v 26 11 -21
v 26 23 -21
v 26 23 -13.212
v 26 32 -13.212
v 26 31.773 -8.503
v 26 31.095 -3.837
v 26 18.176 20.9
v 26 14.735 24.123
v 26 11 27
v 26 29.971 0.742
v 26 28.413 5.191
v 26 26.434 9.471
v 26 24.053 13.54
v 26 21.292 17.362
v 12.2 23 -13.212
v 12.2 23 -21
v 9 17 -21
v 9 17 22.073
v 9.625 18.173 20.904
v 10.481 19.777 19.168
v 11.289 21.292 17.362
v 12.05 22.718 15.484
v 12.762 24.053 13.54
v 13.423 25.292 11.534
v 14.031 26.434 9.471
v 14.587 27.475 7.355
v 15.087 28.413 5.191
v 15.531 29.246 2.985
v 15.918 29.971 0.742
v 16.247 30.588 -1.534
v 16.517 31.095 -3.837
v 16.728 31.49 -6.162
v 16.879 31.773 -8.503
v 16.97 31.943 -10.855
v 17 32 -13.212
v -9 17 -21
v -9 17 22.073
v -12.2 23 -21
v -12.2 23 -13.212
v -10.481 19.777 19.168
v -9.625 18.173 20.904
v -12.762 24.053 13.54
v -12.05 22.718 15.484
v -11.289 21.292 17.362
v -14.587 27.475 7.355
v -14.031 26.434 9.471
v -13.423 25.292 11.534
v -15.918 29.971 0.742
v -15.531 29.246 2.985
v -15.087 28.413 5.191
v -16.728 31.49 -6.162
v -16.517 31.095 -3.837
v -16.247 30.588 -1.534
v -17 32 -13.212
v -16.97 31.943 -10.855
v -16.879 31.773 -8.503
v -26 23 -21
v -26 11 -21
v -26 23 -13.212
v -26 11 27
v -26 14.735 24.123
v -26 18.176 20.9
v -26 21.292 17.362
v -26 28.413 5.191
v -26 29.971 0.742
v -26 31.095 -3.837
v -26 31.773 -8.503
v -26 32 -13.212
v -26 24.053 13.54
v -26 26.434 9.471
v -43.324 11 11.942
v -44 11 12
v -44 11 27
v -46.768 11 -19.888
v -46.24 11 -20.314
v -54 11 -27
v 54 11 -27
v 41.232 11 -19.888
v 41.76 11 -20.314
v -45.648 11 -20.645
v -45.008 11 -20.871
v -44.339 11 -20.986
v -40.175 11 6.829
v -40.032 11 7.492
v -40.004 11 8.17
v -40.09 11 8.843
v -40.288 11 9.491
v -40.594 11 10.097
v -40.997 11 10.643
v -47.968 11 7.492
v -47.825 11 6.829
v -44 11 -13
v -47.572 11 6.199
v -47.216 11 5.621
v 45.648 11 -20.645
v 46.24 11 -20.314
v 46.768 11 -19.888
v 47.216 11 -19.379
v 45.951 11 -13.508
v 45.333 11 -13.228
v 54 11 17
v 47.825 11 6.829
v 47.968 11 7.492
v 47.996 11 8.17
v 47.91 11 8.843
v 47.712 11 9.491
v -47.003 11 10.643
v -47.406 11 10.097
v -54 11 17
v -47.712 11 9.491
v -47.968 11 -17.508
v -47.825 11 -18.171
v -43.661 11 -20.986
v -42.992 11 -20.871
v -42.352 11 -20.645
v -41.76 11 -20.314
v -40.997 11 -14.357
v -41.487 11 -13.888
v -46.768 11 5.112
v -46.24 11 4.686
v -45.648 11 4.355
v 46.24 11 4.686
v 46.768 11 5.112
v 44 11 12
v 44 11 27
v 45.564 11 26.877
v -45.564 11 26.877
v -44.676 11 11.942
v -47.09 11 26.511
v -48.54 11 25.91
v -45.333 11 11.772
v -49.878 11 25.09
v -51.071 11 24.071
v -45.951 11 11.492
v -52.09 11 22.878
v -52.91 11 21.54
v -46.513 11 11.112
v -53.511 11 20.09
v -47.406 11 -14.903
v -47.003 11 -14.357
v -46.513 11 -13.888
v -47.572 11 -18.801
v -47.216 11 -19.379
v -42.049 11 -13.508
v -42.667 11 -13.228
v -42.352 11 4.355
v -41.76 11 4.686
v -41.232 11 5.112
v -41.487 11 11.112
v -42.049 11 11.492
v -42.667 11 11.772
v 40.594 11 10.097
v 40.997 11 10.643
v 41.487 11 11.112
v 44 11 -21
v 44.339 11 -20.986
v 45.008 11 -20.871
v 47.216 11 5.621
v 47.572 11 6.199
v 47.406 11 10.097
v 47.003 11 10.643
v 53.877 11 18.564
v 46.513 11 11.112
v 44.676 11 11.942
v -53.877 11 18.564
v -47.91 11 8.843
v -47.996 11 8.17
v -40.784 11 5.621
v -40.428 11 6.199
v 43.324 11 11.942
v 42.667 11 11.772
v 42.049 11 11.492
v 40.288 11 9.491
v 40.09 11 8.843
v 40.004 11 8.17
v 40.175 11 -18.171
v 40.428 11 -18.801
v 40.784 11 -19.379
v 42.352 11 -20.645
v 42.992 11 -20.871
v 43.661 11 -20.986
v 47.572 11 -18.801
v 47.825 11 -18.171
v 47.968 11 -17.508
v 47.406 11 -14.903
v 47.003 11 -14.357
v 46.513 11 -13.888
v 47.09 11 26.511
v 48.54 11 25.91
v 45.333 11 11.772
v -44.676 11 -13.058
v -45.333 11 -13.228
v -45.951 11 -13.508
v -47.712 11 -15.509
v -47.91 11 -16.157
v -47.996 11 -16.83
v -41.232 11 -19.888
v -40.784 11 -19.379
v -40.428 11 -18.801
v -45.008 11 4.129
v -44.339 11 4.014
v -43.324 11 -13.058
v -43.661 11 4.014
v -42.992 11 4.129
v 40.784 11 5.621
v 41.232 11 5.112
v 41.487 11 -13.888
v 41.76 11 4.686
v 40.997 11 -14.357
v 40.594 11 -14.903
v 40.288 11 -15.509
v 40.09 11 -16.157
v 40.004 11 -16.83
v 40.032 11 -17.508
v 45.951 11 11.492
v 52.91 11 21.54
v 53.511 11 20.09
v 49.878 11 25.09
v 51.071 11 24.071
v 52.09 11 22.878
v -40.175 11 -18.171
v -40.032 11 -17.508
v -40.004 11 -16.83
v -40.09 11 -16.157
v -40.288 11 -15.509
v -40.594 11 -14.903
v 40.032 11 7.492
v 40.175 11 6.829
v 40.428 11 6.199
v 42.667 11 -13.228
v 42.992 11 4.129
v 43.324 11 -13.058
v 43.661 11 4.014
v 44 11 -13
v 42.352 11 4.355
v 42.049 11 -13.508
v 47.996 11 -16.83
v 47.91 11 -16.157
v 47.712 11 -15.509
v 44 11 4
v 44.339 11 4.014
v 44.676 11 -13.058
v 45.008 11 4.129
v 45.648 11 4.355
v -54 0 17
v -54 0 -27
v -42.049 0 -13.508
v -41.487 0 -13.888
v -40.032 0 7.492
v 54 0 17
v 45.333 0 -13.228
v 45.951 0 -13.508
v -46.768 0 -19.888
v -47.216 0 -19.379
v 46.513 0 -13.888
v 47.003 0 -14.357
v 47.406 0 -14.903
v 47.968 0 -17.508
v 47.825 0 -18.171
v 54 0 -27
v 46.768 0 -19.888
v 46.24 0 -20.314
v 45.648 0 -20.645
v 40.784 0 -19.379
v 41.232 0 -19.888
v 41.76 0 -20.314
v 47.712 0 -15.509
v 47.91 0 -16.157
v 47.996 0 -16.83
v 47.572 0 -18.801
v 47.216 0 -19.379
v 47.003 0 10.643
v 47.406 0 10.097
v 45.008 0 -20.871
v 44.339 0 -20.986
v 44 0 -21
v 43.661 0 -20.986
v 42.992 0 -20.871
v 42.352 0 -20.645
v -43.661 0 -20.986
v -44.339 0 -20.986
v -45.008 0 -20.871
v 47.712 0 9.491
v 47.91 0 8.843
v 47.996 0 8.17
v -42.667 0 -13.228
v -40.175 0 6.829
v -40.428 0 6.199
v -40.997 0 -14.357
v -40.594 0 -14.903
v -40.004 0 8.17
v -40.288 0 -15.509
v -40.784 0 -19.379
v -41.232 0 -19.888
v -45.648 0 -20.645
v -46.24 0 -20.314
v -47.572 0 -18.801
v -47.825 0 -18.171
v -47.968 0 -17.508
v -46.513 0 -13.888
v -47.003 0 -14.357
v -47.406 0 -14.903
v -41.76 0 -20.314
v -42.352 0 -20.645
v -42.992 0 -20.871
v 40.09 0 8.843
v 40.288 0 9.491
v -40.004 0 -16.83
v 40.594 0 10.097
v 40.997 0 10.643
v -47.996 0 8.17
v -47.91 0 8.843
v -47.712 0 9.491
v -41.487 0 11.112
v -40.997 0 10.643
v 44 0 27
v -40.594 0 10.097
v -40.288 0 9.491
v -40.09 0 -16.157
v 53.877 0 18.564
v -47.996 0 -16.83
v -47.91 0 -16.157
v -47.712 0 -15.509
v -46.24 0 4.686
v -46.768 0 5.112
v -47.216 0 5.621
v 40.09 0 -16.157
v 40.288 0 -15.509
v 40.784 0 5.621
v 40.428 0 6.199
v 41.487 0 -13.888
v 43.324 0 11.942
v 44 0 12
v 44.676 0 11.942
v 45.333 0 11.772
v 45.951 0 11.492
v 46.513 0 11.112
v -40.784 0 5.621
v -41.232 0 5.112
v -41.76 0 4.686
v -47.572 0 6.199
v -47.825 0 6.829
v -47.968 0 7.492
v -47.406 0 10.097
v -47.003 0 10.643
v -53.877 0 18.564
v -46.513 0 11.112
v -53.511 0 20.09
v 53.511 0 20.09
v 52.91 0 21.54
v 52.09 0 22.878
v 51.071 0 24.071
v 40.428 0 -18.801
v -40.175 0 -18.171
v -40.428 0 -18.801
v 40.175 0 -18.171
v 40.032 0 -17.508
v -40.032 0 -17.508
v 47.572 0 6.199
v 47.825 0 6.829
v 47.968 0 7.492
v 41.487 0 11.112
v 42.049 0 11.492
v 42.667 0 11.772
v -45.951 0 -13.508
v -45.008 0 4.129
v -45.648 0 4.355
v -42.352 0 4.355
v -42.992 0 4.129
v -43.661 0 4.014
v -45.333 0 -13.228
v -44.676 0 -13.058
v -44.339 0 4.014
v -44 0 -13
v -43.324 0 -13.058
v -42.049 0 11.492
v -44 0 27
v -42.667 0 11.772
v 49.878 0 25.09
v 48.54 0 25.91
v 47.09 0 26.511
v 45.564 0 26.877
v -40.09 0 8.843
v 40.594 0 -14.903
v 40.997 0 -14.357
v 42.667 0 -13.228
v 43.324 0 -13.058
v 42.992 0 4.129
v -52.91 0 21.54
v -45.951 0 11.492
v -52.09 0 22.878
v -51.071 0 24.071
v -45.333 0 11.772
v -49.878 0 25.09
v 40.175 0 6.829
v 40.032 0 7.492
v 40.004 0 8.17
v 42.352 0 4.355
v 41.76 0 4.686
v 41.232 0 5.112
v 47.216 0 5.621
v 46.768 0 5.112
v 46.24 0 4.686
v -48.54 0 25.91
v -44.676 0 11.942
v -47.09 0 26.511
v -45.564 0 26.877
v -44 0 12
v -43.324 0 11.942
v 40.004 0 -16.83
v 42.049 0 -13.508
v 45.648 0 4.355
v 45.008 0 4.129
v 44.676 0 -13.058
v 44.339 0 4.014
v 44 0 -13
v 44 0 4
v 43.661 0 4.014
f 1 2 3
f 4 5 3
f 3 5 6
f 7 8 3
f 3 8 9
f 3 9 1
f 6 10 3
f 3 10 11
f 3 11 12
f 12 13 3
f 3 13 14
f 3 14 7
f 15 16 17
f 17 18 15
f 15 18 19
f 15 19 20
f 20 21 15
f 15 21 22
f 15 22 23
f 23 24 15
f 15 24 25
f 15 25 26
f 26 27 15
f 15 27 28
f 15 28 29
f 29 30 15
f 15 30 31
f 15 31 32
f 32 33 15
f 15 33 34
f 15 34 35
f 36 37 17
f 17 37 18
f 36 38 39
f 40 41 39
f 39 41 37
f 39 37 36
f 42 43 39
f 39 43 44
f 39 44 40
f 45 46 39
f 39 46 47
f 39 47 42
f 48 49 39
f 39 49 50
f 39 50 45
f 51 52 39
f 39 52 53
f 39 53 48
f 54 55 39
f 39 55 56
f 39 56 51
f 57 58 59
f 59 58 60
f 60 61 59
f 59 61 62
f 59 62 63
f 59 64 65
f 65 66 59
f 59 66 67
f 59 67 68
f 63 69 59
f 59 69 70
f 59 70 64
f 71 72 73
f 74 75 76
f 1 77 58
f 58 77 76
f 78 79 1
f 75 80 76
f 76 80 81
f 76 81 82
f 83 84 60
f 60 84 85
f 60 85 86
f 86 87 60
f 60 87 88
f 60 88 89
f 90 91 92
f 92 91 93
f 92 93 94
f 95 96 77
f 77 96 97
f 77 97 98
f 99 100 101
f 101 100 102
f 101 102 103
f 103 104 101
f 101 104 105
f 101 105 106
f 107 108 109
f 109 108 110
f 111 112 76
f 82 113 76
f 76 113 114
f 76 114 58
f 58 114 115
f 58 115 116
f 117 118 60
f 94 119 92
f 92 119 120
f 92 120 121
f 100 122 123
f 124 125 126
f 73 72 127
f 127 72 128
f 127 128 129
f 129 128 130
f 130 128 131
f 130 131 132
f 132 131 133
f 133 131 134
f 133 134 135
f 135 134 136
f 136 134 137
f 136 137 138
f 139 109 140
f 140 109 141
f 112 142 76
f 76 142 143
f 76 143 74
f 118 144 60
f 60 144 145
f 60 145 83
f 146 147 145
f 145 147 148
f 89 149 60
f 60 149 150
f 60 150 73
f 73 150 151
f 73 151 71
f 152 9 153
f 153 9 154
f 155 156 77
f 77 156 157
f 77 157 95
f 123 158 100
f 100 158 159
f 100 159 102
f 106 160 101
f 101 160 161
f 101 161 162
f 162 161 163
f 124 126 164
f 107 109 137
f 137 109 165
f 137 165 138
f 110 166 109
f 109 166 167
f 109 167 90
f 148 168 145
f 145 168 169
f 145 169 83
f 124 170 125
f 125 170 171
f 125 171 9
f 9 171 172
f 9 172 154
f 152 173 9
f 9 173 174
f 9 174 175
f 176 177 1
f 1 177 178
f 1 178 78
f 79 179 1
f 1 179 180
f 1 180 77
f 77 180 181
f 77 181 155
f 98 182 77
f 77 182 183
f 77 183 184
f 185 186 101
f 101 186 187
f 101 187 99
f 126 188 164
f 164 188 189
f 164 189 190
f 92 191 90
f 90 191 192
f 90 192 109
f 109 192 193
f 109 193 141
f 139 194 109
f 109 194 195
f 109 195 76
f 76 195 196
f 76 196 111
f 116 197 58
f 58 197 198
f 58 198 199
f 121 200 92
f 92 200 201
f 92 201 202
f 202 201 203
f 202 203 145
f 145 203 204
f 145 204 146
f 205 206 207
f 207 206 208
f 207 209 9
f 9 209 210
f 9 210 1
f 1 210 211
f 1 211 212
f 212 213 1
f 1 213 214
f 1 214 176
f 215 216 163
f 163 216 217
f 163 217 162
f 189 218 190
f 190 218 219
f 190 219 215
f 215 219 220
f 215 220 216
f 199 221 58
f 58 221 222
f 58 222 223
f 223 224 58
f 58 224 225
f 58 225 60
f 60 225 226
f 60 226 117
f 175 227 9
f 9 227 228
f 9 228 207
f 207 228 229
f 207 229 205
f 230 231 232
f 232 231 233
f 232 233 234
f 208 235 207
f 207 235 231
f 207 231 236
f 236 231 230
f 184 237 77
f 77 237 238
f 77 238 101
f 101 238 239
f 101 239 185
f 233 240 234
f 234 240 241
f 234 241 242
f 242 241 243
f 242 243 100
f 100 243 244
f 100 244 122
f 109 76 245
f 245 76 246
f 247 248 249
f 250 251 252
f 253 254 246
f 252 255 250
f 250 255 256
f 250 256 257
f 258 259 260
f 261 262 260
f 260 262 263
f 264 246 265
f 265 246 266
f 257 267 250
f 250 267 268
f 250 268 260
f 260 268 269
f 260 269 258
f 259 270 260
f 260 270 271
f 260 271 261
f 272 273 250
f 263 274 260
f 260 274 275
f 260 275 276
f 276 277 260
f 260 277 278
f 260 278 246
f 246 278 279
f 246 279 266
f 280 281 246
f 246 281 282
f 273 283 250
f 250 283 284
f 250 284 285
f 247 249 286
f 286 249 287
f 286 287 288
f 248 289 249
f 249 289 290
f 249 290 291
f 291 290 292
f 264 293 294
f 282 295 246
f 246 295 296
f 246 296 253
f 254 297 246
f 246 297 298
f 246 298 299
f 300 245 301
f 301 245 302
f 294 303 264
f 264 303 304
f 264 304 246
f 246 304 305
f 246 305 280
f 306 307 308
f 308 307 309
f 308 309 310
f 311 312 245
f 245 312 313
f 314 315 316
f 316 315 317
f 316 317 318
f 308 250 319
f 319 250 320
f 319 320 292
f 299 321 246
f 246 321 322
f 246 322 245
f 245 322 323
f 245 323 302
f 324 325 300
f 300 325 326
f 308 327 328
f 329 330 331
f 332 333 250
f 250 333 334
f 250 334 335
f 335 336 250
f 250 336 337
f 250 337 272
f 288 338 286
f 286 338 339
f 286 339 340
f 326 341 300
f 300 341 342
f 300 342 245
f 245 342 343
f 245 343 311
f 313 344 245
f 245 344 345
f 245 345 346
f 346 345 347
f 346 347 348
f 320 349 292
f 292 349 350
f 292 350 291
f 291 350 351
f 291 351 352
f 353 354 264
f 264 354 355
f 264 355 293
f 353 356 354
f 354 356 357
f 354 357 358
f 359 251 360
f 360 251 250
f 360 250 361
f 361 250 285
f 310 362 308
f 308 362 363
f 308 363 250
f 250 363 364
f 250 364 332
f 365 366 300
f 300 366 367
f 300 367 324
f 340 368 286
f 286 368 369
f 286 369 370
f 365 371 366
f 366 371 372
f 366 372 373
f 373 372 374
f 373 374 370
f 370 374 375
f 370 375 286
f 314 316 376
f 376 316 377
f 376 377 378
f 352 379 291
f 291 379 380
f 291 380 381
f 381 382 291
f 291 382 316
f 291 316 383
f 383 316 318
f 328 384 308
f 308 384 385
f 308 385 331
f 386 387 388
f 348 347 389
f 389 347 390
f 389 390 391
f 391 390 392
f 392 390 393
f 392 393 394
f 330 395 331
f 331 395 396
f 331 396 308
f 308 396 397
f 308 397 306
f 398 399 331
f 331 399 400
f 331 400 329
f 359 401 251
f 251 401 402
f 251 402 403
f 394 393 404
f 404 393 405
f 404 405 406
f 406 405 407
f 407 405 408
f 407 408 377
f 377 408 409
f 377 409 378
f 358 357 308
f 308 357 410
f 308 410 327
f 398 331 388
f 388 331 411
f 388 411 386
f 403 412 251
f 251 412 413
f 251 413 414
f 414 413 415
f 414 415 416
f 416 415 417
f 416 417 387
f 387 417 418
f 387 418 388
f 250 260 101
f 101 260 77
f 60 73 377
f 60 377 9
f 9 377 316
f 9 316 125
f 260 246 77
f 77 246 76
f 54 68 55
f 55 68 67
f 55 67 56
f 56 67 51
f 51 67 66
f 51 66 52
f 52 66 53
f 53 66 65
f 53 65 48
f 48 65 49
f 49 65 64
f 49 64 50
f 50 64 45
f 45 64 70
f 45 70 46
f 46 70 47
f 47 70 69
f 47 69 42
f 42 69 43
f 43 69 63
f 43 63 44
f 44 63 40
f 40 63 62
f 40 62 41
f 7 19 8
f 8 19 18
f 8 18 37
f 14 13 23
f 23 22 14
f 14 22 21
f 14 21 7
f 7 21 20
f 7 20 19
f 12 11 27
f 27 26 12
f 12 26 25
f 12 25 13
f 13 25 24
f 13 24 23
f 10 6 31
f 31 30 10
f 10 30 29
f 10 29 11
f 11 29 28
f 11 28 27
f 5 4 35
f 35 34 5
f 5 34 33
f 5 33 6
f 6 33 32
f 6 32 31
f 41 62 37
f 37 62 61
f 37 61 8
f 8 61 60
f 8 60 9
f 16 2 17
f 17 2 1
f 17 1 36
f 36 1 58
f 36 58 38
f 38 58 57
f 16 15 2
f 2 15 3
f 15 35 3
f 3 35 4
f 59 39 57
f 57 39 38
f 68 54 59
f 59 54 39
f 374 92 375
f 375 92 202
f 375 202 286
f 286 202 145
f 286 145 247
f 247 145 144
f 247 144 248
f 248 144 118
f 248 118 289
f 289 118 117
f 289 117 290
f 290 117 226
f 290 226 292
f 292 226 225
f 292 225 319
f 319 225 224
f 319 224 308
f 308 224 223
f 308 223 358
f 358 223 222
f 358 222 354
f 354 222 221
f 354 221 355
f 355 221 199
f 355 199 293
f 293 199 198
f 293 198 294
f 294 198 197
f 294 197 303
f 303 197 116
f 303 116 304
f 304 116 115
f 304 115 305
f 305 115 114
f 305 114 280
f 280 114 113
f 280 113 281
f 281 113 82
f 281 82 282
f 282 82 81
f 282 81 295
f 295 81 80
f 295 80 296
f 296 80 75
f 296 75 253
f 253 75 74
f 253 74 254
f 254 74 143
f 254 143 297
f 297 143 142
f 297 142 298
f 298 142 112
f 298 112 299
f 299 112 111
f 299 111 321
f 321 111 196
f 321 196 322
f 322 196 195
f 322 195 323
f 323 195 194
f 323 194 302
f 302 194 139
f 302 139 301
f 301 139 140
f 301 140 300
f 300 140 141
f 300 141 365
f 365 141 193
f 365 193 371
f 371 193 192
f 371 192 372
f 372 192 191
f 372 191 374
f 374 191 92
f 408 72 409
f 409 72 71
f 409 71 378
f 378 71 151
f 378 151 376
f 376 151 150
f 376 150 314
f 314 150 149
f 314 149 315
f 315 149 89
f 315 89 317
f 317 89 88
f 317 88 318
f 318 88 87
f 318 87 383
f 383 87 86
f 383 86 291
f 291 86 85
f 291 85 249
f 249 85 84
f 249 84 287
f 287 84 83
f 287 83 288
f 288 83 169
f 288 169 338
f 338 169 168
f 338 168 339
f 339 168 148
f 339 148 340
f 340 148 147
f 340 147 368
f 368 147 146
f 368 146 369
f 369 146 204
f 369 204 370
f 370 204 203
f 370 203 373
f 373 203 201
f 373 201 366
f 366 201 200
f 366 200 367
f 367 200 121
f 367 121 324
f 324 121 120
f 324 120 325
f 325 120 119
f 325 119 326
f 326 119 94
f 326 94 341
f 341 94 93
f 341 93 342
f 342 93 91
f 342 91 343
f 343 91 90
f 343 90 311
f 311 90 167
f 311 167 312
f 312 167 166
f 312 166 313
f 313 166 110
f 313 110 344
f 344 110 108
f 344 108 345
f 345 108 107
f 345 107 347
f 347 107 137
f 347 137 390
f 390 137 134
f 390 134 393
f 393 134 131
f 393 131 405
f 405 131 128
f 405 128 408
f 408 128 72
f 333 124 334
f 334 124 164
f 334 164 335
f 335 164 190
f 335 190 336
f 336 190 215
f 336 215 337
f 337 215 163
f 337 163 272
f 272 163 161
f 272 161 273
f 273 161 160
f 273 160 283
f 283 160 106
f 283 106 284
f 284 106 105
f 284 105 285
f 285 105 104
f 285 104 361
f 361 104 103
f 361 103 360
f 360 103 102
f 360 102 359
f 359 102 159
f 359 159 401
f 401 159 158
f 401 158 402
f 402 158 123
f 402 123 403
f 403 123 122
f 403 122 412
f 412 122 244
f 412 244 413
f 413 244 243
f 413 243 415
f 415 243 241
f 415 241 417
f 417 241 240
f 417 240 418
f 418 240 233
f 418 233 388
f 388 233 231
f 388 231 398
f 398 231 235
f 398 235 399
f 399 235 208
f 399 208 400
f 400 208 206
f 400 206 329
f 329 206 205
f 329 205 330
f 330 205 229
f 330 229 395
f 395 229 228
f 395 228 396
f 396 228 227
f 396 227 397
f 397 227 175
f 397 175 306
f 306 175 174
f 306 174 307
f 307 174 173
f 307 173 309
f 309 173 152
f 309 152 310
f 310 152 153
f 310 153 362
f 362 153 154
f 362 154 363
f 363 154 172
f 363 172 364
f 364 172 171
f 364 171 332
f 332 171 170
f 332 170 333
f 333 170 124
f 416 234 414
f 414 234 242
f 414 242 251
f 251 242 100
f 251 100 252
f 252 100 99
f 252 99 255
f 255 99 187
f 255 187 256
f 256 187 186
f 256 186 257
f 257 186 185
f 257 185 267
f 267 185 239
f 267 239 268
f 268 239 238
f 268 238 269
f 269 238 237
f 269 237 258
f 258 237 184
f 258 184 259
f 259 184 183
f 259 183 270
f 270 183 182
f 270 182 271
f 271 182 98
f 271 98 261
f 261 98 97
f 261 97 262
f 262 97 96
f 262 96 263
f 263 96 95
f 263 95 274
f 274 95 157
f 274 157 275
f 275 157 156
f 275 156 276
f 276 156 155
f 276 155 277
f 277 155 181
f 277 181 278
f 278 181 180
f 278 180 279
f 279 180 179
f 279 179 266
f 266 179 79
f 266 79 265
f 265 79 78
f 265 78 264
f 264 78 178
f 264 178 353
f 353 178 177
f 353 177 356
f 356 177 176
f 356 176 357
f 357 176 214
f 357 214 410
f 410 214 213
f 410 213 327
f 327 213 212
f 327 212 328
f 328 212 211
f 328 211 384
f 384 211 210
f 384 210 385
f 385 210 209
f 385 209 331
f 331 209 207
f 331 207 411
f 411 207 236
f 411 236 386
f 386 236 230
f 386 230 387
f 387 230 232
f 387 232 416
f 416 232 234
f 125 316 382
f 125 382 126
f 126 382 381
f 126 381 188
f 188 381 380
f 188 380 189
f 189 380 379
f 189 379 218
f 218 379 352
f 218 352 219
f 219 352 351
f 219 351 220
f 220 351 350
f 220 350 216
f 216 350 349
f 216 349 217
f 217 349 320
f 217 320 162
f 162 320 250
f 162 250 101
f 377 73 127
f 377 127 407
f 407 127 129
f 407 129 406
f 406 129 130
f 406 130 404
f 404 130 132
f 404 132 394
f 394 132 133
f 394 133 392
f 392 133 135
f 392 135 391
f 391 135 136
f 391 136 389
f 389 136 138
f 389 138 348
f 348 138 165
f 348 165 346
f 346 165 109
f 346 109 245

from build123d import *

# Parameters (mm, degrees)
BOSS_EXTRUDE1_DEPTH = 27
CUT_EXTRUDE1_DEPTH  = 116.83177457
SKETCH3_R           = 4
CUT_EXTRUDE2_DEPTH  = 64.921827258
FILLET1_R           = 10


with BuildPart() as part:
    # Sketch1 → Boss-Extrude1 (new, symmetric)
    with BuildSketch(Plane.XY):
        Polygon((-54, 0), (0, 0), (0, 11), (-26, 11), (-54, 11), align=None)
        Polygon((-26, 11), (0, 11), (0, 17), (-9, 17), (-13.235294044, 24.941176333), (-17, 32), (-26, 32), align=None)
        Polygon((0, 11), (0, 0), (54, 0), (54, 11), (26, 11), align=None)
        Polygon((0, 17), (0, 11), (26, 11), (26, 32), (17, 32), (13.235294044, 24.941176333), (9, 17), align=None)
    extrude(amount=BOSS_EXTRUDE1_DEPTH, both=True)

    # Sketch2 → Cut-Extrude1 (cut, through all)
    with BuildSketch(Plane(origin=(54, 0, 0), x_dir=(0, 0, -1), z_dir=(1, 0, 0))):
        with BuildLine():
            Line((-27, 32), (-27, 11))
            ThreePointArc((-27, 11), (-9.470653919, 26.433857761), (13.211938526, 32))
            Line((13.211938526, 32), (-27, 32))
        make_face()
        Polygon((21, 23), (21, 11), (27, 11), (27, 32), (13.211938526, 32), (13.211938526, 23), align=None)
    extrude(amount=-CUT_EXTRUDE1_DEPTH, mode=Mode.SUBTRACT)

    # Sketch3 → Cut-Extrude2 (cut, through all)
    with BuildSketch(Plane(origin=(0, 11, 0), x_dir=(1, 0, 0), z_dir=(0, 1, 0))):
        with Locations(Location((-44, 17, 0), (0, 0, 270))):
            Circle(SKETCH3_R)
        with Locations(Location((-44, -8, 0), (0, 0, 270))):
            Circle(SKETCH3_R)
        with Locations(Location((44, -8, 0), (0, 0, 90))):
            Circle(SKETCH3_R)
        with Locations(Location((44, 17, 0), (0, 0, 90))):
            Circle(SKETCH3_R)
    extrude(amount=-CUT_EXTRUDE2_DEPTH, mode=Mode.SUBTRACT)

    # Fillet1
    fillet1_edges = [part.edges().sort_by_distance(p)[0] for p in [
        (-54, 5.5, 27),
        (54, 5.5, 27),
    ]]
    fillet(fillet1_edges, radius=FILLET1_R)


solid = part.part
